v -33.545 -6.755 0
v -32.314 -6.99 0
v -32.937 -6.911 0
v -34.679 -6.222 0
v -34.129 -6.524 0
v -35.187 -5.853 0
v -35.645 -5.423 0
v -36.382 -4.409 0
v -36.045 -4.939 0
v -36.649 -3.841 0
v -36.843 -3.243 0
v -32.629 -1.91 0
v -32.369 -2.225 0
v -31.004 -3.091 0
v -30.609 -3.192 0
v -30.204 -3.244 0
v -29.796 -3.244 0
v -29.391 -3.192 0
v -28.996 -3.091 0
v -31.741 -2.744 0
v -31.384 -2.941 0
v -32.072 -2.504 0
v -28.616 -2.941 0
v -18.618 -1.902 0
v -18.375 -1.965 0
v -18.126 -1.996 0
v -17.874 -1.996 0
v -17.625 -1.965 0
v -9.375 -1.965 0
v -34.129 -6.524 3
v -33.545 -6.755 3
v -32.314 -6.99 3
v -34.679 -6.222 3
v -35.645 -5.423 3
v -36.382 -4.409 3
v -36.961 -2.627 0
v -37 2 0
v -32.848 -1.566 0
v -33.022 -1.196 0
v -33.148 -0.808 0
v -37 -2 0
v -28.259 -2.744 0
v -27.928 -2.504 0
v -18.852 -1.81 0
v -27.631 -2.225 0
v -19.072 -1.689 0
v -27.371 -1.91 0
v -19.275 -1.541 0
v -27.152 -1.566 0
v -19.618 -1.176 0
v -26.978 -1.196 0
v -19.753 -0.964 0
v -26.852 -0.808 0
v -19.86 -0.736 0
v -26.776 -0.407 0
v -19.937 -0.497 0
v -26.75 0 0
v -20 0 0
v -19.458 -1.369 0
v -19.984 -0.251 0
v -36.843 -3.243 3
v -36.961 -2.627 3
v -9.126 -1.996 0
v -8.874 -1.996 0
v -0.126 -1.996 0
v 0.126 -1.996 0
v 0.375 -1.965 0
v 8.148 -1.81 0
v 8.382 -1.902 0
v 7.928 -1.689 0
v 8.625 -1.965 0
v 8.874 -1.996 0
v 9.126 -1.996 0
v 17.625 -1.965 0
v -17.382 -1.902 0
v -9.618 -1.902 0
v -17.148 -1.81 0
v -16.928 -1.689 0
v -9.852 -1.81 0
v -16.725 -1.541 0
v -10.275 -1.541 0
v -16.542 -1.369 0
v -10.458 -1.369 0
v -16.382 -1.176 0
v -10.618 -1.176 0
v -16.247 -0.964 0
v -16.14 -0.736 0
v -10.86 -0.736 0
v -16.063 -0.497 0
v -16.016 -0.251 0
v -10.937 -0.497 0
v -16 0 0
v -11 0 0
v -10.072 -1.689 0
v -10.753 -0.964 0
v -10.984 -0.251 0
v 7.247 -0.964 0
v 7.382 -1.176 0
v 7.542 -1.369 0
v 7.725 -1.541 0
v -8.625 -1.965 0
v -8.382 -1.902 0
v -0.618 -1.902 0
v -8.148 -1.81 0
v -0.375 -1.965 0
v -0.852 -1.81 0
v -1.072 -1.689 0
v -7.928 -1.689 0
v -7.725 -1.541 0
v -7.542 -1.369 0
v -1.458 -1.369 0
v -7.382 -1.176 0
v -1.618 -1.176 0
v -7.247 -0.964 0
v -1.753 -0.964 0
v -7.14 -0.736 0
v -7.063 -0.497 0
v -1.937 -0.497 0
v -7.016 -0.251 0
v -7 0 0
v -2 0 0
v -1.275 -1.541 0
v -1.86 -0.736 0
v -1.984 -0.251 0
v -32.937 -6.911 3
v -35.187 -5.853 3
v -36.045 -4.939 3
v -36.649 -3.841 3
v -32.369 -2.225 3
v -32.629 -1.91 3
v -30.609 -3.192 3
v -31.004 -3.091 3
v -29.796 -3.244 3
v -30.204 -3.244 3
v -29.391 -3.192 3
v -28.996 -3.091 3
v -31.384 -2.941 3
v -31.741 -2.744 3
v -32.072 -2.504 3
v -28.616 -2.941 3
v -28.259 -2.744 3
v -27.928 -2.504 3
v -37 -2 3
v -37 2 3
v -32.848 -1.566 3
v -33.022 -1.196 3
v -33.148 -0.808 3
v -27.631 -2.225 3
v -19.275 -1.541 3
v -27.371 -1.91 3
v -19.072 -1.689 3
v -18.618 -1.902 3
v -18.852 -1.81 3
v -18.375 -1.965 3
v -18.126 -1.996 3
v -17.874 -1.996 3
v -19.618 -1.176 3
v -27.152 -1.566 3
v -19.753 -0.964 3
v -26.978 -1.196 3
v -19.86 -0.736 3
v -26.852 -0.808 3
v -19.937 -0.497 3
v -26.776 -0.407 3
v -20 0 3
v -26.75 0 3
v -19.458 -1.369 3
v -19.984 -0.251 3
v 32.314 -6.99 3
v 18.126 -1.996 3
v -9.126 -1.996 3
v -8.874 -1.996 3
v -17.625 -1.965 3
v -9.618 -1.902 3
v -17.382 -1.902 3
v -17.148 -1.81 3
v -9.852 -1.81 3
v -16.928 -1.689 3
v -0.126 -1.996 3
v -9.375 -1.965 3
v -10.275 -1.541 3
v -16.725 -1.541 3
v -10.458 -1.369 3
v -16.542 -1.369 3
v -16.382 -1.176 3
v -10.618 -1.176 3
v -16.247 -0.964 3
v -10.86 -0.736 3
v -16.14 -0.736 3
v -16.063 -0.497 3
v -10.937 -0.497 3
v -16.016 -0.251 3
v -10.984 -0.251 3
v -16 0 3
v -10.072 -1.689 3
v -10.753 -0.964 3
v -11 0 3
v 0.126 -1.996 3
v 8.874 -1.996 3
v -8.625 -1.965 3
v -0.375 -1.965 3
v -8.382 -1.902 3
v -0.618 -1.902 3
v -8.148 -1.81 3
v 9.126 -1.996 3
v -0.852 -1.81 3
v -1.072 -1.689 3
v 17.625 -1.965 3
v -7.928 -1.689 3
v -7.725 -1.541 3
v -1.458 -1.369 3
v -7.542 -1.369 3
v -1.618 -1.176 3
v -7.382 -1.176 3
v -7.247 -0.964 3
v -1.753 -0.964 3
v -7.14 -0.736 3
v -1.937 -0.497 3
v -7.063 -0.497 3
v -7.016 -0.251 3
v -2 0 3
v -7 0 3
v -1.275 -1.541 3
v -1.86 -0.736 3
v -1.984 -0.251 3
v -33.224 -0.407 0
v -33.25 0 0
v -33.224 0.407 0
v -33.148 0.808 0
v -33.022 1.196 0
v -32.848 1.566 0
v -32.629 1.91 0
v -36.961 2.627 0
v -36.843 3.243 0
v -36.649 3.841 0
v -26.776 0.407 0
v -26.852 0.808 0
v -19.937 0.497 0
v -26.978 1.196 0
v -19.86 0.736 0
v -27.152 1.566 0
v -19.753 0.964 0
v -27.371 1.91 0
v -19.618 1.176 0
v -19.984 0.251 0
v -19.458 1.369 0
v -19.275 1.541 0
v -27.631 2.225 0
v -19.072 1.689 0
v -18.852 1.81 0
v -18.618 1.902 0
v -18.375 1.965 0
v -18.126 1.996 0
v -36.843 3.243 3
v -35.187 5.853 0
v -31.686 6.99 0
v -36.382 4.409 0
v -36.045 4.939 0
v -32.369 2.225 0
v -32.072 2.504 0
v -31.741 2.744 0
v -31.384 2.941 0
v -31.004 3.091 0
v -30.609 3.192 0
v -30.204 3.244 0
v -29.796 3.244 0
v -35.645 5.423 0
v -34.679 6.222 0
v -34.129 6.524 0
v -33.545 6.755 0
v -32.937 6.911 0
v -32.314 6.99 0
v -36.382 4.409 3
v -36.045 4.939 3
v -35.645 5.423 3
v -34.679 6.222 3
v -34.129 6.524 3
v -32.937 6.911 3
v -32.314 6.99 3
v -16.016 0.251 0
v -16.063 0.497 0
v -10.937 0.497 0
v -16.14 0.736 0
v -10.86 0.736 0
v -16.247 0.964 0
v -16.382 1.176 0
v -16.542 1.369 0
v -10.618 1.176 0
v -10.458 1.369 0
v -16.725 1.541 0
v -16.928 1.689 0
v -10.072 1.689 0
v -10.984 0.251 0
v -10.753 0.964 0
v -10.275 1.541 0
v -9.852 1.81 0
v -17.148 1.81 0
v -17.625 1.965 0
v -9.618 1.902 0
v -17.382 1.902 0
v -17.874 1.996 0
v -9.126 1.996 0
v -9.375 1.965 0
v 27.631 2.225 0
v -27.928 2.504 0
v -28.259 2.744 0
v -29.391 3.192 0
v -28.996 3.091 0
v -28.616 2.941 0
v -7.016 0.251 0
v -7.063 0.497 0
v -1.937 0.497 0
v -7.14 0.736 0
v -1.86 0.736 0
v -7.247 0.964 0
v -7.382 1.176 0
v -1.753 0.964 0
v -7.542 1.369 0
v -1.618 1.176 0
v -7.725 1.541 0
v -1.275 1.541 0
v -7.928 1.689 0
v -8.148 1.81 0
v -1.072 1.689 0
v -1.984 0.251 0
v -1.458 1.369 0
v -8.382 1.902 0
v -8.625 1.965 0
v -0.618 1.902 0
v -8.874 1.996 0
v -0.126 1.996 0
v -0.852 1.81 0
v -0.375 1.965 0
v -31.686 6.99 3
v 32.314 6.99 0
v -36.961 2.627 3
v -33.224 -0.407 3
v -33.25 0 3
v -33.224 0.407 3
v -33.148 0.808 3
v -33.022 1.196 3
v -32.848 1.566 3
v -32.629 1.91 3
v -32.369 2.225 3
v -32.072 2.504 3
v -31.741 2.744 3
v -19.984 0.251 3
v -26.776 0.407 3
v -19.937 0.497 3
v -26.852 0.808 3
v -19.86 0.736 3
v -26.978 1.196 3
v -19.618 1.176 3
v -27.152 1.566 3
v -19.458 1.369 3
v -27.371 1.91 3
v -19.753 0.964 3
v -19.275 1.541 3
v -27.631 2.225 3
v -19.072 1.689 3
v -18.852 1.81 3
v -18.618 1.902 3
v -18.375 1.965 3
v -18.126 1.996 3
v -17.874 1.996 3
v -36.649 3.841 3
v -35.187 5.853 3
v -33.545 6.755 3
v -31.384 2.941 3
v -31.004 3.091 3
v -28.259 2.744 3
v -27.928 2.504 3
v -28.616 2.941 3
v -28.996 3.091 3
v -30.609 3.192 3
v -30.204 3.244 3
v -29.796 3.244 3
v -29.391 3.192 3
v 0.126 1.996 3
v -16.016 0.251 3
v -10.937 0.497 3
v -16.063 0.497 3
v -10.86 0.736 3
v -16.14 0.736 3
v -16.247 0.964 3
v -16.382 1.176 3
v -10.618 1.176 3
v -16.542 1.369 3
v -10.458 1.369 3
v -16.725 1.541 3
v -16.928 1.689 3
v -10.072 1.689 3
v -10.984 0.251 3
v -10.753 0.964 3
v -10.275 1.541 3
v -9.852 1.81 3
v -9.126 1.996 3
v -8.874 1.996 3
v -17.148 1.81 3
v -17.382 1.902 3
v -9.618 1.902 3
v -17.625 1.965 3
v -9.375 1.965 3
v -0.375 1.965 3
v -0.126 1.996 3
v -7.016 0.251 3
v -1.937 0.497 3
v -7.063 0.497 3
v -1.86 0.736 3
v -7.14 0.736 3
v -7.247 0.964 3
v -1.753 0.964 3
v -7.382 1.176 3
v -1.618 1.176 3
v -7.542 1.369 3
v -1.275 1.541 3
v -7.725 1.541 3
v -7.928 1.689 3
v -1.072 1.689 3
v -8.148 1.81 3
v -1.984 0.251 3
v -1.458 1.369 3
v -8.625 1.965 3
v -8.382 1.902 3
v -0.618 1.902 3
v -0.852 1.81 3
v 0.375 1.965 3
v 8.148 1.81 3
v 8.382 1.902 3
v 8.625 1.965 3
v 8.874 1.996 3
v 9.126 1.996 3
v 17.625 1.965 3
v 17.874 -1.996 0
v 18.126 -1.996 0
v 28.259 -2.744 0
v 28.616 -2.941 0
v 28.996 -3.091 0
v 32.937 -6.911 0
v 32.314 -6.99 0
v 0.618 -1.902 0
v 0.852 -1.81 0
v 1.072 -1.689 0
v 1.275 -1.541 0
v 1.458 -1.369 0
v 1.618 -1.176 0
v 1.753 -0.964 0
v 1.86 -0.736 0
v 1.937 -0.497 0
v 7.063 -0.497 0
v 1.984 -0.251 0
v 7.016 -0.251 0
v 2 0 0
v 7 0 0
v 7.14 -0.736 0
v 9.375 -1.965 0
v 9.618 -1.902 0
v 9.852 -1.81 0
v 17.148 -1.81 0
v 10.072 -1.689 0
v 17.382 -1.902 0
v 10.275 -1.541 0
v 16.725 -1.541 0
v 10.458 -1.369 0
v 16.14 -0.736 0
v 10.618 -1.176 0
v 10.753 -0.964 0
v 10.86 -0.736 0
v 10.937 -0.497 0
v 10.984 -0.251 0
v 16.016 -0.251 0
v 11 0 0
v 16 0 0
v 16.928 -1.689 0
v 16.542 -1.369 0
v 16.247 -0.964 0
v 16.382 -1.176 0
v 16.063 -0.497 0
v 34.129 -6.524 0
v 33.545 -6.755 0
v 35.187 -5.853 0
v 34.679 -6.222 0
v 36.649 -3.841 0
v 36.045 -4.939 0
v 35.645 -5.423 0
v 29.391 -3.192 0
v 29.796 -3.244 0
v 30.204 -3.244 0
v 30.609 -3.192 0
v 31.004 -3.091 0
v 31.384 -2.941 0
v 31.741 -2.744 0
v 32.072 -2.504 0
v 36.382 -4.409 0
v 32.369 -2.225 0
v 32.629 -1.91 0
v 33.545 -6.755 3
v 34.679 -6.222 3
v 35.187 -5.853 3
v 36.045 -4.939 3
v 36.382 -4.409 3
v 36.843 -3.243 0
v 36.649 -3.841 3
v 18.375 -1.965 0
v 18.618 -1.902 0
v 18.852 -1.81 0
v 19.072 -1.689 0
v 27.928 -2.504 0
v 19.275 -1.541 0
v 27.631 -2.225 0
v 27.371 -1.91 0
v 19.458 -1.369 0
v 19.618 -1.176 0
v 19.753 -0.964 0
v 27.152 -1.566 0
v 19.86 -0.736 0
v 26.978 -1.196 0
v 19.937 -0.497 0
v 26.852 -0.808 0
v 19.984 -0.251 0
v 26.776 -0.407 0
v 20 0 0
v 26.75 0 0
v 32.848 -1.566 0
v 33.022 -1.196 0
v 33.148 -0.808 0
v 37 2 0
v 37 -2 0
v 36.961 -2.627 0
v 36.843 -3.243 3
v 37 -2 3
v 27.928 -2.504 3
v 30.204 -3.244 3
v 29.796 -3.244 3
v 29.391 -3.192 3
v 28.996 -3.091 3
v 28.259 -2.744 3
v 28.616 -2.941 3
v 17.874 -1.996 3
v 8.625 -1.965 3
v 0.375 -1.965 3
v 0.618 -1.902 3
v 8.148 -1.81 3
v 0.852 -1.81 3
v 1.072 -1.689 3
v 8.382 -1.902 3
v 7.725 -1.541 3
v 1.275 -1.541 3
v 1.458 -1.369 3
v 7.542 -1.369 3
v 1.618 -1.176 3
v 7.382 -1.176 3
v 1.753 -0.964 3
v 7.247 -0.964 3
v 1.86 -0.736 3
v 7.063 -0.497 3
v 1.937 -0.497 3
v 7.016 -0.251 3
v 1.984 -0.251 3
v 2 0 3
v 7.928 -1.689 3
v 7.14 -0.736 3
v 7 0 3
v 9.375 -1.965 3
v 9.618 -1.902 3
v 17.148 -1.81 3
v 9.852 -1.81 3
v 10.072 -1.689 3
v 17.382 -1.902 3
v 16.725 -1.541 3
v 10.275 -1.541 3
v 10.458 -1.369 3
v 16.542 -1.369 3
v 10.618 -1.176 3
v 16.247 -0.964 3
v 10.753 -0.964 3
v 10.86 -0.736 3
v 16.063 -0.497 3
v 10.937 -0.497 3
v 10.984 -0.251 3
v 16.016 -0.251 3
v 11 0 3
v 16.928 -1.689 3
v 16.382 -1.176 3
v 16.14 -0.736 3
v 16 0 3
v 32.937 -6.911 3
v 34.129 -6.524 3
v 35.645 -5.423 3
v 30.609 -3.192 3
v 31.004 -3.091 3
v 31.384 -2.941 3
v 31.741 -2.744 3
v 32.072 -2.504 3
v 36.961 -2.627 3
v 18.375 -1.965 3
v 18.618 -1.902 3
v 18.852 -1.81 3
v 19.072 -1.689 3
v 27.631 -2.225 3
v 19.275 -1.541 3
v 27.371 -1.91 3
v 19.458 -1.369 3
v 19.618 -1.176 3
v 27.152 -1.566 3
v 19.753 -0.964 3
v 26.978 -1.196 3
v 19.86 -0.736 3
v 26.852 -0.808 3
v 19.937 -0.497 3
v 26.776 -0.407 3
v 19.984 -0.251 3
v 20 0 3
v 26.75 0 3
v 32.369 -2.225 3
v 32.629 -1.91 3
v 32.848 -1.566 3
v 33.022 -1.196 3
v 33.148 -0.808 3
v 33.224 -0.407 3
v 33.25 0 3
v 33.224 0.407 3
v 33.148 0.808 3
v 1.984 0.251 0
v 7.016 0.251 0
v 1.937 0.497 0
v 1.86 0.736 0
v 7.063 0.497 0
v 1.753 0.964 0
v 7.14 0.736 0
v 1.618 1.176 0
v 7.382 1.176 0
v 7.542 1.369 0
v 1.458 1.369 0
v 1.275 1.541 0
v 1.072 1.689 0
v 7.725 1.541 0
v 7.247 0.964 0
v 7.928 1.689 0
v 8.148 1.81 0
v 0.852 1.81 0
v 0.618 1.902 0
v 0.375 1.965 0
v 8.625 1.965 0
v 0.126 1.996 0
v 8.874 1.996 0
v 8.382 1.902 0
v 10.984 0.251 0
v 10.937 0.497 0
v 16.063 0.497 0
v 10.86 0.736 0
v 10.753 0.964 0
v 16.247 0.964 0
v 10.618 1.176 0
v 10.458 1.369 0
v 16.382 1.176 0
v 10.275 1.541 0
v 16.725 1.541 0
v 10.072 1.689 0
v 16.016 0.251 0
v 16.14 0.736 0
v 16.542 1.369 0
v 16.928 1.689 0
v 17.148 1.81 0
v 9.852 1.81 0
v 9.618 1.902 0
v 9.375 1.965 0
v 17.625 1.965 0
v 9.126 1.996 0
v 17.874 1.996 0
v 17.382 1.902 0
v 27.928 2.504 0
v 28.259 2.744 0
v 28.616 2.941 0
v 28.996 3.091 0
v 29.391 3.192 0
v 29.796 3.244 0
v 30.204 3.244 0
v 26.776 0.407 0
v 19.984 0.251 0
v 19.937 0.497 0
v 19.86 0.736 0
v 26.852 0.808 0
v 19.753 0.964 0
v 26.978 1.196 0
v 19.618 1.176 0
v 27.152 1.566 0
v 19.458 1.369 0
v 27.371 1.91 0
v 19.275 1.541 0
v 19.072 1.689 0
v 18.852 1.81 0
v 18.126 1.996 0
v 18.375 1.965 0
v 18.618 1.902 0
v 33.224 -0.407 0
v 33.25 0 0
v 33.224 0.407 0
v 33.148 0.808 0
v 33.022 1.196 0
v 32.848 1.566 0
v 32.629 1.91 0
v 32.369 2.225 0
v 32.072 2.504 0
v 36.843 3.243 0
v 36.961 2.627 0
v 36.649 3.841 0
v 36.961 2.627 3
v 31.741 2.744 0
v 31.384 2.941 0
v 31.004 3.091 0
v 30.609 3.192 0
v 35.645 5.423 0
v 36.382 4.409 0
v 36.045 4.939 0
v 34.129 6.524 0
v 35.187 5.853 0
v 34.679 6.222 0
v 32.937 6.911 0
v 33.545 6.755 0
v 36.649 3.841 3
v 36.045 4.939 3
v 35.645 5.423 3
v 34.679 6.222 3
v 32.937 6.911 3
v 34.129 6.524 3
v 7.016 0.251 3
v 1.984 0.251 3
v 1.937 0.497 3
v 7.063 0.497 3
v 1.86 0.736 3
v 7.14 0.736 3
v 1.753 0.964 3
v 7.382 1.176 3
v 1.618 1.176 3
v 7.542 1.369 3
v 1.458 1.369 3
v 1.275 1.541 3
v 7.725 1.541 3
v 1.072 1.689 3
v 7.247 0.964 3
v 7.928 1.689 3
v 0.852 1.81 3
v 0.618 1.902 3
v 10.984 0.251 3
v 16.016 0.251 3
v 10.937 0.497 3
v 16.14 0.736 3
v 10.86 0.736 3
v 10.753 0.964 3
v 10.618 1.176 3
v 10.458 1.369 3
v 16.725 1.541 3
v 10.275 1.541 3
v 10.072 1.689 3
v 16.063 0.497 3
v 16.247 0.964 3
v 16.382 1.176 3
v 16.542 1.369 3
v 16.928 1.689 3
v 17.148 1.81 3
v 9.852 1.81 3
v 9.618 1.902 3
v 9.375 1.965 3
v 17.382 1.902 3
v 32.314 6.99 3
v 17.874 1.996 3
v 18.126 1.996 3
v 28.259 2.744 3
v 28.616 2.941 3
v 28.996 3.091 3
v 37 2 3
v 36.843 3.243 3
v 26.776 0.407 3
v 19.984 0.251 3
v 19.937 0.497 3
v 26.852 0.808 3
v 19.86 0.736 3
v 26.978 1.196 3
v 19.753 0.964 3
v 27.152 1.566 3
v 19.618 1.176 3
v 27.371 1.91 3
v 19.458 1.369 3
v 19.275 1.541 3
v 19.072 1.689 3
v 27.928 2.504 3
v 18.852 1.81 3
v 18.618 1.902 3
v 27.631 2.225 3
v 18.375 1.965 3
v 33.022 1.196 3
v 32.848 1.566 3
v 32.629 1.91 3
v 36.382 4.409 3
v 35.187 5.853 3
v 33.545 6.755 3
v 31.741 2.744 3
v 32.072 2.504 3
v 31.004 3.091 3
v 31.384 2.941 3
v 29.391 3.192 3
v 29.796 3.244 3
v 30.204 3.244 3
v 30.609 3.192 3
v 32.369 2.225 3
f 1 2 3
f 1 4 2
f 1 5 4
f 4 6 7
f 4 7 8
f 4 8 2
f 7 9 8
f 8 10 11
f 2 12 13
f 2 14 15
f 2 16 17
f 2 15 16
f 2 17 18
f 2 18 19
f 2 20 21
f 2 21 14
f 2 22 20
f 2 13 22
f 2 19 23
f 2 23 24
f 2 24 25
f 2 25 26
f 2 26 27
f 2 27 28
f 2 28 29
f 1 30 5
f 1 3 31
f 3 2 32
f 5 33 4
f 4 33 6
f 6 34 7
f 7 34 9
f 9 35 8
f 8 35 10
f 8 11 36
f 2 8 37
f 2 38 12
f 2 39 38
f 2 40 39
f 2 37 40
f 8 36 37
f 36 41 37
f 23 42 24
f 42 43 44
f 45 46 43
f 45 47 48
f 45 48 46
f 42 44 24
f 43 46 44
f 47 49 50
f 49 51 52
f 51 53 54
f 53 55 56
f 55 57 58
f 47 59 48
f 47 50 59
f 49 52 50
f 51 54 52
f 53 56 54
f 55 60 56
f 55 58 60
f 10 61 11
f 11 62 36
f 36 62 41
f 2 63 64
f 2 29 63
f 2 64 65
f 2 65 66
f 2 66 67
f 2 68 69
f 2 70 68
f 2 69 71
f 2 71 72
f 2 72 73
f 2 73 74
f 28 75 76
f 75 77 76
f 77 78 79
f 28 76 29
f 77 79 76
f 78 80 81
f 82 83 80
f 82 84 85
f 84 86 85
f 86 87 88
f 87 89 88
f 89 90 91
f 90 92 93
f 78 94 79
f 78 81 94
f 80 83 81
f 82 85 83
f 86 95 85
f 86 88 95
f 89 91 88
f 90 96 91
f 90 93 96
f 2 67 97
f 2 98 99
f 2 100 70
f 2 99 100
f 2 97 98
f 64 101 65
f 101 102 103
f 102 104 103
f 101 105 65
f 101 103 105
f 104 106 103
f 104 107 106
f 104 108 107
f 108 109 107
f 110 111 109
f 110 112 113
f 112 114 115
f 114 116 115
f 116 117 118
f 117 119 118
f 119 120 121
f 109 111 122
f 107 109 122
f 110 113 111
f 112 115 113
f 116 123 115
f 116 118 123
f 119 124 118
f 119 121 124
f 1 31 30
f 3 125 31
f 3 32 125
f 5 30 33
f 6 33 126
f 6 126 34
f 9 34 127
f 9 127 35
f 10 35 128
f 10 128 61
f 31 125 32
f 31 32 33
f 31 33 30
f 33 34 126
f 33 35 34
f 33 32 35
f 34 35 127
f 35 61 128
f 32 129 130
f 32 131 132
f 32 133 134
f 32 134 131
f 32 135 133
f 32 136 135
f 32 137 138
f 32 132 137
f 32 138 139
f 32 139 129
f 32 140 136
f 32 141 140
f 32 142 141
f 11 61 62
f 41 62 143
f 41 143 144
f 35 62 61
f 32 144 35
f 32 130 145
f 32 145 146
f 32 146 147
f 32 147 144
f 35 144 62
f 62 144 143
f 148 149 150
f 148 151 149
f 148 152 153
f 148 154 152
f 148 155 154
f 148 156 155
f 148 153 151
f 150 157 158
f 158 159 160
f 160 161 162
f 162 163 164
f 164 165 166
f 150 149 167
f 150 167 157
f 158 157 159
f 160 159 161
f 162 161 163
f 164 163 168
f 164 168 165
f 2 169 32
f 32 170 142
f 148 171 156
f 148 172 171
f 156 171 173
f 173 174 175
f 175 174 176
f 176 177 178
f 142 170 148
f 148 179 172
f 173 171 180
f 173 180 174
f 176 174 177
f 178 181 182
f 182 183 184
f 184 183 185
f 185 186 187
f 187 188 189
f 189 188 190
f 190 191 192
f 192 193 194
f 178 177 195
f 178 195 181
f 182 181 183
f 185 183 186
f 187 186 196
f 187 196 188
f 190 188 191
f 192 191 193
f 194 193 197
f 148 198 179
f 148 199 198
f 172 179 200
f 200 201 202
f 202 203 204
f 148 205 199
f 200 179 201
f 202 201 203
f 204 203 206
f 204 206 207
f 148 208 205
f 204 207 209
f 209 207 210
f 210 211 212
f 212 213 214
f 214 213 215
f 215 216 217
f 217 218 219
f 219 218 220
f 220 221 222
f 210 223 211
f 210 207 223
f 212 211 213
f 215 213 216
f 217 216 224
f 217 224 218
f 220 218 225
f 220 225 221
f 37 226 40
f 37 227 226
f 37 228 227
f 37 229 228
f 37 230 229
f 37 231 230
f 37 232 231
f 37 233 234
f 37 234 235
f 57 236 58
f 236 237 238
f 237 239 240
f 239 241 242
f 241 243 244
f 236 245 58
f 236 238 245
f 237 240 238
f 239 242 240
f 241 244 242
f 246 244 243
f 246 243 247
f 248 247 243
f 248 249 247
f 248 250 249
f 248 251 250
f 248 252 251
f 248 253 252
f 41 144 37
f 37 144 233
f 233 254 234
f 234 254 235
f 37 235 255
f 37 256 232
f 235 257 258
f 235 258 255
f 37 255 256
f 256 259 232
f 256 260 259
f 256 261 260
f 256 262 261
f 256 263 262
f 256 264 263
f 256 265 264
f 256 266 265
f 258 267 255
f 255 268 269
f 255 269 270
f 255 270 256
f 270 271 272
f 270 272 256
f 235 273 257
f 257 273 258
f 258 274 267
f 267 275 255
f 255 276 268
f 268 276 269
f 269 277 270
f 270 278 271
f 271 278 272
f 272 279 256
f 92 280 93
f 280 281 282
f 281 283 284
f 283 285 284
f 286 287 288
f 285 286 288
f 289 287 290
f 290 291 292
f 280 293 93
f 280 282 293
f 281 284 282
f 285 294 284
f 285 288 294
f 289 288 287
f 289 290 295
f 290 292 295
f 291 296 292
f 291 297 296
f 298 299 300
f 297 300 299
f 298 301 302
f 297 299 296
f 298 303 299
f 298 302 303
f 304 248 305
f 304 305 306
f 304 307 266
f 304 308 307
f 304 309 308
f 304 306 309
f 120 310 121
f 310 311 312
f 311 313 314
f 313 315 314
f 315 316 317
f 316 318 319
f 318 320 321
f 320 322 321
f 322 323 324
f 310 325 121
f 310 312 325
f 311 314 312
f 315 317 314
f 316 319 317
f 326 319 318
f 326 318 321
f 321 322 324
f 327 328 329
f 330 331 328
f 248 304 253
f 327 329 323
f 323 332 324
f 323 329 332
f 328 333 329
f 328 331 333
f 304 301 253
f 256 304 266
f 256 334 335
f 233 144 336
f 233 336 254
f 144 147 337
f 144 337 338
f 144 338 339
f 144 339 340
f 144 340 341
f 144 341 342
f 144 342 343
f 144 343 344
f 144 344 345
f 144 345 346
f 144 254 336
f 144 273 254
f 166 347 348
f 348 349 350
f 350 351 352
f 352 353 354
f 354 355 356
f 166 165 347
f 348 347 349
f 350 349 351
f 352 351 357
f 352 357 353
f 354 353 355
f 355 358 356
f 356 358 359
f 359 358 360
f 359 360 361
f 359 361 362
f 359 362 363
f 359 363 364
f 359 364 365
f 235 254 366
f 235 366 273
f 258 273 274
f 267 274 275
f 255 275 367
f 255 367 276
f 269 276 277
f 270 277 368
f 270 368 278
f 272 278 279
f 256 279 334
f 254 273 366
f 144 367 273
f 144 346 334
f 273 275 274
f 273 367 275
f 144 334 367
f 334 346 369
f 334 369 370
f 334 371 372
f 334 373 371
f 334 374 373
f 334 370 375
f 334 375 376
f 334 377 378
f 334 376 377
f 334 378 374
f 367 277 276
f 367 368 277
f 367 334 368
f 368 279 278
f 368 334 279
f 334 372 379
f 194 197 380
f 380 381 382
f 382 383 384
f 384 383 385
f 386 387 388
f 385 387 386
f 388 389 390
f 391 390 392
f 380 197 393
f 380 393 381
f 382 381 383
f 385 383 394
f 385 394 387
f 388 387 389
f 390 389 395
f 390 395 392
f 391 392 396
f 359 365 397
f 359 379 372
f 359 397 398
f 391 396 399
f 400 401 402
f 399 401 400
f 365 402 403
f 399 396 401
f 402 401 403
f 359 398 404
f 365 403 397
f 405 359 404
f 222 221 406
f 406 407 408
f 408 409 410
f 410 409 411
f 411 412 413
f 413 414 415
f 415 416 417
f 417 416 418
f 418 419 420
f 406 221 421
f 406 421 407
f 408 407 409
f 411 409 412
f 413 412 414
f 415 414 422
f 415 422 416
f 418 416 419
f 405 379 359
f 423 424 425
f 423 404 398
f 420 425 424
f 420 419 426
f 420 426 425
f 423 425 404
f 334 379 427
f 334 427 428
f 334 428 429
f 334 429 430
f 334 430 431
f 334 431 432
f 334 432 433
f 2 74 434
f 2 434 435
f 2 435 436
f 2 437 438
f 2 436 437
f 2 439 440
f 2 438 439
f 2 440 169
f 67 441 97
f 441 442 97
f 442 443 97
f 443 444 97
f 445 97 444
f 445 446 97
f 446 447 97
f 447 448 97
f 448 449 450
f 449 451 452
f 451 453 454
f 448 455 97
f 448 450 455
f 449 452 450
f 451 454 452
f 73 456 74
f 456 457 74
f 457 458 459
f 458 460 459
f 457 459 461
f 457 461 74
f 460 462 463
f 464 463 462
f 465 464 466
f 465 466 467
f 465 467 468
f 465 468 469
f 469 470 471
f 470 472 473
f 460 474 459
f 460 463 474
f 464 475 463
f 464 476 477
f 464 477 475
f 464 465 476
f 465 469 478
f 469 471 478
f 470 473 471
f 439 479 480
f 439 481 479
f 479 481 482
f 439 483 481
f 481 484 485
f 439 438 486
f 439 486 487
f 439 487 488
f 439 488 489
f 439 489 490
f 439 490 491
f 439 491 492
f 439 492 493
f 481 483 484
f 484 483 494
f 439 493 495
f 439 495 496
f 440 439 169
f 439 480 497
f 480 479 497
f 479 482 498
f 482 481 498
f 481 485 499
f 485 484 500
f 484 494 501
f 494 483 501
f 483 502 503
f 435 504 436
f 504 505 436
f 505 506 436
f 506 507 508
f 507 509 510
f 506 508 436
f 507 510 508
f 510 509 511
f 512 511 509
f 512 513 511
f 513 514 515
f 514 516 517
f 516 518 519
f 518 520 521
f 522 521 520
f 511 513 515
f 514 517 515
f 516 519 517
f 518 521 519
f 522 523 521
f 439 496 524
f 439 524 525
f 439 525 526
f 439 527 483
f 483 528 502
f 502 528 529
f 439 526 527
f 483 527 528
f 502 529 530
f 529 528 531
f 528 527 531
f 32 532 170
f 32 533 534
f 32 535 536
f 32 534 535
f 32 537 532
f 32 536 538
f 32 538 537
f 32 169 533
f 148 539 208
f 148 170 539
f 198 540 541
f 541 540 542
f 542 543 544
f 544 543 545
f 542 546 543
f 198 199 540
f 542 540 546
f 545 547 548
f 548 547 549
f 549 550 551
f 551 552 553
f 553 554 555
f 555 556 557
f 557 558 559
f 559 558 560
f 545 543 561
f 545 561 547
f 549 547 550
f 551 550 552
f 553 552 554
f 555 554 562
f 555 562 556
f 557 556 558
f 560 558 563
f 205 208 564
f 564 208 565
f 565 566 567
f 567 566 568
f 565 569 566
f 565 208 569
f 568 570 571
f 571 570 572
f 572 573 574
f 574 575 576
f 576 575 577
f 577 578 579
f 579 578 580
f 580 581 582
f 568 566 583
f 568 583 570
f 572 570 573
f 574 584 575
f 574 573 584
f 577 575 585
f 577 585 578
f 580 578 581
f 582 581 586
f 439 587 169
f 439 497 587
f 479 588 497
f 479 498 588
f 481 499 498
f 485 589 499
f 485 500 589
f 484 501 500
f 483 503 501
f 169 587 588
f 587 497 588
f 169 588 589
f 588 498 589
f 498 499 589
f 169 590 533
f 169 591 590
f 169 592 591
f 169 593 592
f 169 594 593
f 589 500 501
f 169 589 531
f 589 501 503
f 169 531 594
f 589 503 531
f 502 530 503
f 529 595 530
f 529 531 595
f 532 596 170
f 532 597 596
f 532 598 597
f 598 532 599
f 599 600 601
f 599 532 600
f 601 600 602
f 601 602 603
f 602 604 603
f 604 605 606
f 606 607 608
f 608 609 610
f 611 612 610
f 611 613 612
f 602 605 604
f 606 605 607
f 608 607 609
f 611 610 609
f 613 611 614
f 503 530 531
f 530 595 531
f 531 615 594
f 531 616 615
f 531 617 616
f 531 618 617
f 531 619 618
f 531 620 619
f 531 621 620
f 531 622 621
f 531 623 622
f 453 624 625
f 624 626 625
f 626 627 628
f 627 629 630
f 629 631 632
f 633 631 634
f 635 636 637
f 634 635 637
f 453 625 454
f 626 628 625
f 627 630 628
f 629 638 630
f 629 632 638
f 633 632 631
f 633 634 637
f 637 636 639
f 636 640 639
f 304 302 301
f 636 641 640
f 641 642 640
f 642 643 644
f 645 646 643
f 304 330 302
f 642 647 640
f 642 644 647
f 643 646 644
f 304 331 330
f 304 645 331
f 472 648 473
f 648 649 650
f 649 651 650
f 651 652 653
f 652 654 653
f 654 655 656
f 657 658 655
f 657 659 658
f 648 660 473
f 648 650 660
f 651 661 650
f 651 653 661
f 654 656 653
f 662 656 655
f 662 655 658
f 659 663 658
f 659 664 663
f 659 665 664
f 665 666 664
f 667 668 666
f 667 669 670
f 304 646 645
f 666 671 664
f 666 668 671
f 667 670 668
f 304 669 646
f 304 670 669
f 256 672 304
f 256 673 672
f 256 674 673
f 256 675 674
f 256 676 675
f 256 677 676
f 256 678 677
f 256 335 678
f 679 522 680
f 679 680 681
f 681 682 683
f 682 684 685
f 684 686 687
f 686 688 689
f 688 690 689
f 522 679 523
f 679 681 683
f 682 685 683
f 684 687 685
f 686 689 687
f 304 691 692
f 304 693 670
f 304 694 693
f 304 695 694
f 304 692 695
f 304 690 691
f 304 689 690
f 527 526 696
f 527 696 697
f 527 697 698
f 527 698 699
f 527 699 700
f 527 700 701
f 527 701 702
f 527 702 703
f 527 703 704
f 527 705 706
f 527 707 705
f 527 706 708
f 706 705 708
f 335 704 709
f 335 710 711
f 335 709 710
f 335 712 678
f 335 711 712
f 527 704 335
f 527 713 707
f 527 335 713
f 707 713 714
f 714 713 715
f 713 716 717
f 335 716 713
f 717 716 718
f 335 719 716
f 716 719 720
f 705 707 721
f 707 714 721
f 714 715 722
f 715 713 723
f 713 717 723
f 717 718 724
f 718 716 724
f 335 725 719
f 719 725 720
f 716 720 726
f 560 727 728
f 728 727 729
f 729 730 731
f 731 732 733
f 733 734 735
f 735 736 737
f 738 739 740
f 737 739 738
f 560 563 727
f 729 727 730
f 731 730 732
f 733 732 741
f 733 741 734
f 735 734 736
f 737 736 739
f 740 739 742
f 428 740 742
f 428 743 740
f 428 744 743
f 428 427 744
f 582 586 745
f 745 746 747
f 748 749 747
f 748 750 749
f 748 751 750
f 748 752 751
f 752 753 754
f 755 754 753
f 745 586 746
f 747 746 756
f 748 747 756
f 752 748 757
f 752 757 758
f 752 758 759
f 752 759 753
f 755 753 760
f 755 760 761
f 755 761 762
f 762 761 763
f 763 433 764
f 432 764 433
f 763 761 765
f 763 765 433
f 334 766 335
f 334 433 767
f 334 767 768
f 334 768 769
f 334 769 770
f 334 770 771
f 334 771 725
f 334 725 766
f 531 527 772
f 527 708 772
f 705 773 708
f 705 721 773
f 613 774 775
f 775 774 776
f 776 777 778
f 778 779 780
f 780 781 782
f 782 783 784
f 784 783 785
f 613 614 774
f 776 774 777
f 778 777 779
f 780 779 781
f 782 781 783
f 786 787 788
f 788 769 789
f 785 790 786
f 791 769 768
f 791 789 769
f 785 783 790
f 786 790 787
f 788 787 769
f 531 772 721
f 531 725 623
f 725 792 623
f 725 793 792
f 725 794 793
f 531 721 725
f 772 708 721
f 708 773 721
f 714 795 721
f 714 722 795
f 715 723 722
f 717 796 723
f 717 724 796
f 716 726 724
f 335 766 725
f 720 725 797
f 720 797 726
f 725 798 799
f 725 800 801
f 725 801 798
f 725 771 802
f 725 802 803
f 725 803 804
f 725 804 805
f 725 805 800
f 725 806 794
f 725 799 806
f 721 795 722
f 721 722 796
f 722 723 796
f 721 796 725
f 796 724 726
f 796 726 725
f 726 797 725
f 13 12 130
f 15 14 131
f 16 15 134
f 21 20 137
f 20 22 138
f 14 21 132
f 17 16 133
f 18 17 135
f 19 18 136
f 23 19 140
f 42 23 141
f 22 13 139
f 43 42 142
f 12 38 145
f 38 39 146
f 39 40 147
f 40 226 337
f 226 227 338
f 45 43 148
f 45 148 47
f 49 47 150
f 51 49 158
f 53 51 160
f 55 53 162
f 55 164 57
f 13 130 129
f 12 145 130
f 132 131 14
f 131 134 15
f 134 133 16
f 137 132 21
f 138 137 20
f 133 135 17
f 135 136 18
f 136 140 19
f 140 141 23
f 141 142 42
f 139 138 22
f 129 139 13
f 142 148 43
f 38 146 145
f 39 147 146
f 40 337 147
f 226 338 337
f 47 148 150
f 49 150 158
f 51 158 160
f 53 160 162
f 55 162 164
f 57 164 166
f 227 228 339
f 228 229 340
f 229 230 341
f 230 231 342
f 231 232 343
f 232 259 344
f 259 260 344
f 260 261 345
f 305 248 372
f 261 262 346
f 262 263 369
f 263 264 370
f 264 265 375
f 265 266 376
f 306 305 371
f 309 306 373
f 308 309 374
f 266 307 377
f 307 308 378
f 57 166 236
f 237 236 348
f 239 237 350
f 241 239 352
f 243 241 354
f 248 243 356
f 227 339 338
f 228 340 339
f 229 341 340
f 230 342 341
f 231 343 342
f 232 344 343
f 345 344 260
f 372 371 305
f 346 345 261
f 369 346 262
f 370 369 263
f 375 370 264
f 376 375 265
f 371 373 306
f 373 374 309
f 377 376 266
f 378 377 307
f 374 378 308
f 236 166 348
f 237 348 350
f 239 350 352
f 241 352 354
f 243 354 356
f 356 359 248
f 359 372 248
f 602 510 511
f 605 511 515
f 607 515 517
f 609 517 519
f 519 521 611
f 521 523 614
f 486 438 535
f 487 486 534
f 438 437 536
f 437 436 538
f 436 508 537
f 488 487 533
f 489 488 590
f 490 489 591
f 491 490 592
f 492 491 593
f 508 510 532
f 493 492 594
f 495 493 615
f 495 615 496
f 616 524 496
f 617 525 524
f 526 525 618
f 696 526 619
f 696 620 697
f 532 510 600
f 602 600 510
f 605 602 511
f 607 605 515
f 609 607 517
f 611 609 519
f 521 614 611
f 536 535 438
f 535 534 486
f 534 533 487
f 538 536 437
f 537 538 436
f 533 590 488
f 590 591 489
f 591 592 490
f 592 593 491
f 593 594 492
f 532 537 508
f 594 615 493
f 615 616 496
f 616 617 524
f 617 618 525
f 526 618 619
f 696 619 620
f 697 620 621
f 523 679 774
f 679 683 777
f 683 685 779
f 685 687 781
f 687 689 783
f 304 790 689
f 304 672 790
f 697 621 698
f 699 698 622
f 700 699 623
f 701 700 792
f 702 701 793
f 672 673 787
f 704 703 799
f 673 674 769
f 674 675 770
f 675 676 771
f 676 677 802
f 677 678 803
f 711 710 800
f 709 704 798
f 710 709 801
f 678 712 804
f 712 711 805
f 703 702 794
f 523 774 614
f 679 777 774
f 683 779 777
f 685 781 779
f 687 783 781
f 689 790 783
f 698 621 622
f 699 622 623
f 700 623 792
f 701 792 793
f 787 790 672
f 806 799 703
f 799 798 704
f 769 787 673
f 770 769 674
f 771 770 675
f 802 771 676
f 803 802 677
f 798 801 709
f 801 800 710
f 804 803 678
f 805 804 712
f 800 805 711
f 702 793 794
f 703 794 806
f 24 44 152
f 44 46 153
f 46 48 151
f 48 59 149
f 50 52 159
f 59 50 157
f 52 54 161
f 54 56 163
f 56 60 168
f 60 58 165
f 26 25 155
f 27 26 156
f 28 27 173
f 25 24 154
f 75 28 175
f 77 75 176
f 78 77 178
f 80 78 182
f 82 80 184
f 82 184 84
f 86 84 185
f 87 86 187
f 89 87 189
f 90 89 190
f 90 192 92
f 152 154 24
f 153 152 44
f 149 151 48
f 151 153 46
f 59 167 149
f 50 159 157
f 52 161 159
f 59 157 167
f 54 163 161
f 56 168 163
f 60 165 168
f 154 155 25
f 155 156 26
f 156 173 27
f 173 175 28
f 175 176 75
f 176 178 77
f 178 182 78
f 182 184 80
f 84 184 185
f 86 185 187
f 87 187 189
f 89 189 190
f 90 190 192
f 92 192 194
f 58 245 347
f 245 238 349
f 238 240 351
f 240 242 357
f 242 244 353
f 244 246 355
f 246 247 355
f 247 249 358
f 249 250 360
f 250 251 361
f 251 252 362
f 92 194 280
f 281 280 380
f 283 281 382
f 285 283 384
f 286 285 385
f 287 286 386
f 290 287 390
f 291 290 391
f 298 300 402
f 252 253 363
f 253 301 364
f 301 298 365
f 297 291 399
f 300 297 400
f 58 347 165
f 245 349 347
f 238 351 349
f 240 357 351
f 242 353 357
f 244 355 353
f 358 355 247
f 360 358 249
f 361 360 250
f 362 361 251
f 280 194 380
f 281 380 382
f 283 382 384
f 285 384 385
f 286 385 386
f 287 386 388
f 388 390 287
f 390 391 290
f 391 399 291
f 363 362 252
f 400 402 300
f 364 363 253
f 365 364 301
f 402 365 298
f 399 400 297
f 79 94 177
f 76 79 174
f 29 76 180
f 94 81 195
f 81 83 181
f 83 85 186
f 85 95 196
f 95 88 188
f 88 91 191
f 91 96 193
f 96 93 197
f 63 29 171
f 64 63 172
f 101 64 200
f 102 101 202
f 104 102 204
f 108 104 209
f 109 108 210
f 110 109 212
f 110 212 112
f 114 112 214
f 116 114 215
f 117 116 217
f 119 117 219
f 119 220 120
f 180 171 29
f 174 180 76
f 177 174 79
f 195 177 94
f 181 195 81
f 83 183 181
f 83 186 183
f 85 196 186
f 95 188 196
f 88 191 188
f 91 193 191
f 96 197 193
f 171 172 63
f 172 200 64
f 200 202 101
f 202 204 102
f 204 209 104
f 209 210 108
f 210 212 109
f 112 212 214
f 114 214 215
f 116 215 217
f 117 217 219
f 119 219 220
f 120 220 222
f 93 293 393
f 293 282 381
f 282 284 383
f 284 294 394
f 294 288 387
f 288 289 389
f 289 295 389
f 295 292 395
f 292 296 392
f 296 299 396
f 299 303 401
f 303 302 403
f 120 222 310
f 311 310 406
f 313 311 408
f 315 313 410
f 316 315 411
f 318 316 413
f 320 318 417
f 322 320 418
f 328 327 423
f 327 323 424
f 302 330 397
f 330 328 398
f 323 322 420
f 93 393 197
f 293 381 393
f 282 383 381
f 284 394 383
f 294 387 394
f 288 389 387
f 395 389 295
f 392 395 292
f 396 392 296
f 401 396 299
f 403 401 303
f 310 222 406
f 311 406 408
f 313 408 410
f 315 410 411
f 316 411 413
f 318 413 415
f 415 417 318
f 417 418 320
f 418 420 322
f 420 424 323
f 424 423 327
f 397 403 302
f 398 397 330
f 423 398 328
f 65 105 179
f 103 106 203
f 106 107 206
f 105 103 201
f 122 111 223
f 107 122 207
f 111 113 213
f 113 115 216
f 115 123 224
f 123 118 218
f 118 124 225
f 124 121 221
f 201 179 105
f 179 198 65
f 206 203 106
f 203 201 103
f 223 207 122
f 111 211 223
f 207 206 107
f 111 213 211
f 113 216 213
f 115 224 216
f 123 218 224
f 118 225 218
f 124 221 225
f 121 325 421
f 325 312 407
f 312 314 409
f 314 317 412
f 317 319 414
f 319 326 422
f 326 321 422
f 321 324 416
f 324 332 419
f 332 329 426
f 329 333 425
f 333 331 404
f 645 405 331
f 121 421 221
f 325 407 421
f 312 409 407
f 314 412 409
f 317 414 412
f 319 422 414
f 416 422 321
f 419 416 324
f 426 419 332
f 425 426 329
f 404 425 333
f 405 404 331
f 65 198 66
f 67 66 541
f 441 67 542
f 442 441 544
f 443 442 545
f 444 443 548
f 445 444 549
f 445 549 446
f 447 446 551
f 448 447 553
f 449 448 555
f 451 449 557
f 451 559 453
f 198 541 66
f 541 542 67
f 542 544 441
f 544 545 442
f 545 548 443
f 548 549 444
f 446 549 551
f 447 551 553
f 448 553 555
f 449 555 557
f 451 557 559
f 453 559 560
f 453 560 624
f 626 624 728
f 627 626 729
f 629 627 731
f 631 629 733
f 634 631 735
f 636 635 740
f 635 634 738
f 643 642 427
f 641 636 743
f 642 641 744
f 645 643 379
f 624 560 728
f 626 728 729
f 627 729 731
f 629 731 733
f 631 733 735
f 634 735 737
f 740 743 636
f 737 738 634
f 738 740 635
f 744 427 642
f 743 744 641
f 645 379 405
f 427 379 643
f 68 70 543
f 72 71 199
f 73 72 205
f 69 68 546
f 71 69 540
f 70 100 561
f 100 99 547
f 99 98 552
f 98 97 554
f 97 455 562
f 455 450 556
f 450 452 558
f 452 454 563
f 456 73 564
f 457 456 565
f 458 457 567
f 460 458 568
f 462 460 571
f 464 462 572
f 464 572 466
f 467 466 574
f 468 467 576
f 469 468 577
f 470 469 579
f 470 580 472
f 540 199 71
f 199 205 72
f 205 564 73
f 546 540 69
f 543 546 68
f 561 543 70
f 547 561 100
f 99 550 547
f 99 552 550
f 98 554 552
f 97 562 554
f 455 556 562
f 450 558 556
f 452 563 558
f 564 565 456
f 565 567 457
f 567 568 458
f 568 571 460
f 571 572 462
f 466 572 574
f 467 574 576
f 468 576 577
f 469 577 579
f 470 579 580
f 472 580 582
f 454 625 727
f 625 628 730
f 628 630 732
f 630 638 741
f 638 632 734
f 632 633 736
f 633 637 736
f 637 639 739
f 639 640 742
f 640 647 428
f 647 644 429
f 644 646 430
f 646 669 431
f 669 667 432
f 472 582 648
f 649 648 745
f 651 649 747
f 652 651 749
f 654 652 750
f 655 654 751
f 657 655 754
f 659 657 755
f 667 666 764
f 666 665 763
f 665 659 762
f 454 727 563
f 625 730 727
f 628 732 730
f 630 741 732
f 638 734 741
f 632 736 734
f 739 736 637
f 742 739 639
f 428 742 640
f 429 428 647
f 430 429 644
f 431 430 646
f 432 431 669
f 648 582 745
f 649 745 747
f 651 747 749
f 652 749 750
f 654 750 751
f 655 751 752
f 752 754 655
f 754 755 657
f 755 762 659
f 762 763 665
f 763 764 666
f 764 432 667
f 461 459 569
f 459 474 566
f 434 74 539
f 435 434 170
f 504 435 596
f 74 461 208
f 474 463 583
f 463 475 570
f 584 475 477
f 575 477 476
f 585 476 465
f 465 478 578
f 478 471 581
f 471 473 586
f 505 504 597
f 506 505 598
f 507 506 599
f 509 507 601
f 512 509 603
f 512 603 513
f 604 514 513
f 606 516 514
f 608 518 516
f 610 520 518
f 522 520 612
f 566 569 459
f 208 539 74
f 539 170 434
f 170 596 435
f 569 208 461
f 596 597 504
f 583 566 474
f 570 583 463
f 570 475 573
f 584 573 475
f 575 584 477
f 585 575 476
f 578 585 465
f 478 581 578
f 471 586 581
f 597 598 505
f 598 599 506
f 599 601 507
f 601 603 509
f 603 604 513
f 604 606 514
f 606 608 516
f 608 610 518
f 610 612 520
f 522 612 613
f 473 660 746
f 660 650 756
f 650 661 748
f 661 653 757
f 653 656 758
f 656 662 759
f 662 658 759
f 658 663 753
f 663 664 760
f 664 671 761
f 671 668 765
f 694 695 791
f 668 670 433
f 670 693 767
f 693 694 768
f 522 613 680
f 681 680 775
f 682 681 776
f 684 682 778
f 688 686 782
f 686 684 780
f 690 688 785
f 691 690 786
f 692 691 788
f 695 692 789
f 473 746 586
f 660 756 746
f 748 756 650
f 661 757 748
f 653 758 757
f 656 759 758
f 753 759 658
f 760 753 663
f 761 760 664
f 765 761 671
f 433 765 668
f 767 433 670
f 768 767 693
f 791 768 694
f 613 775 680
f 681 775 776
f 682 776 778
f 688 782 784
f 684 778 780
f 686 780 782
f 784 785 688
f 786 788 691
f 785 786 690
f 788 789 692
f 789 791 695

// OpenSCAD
$fn = 50;

difference() {
	union() {
		hull() {
			translate(v = [-32.0, 2.0, 0]) {
				cylinder(h = 3, r = 5);
			}
			translate(v = [32.0, 2.0, 0]) {
				cylinder(h = 3, r = 5);
			}
			translate(v = [-32.0, -2.0, 0]) {
				cylinder(h = 3, r = 5);
			}
			translate(v = [32.0, -2.0, 0]) {
				cylinder(h = 3, r = 5);
			}
		}
	}
	union() {
		translate(v = [-30.0, 0.0, 0]) {
			cylinder(h = 3, r = 3.25);
		}
		translate(v = [30.0, 0.0, 0]) {
			cylinder(h = 3, r = 3.25);
		}
		translate(v = [-18.0, 0, 0.0]) {
			cylinder(h = 3, r = 2.0);
		}
		translate(v = [-9.0, 0, 0.0]) {
			cylinder(h = 3, r = 2.0);
		}
		cylinder(h = 3, r = 2.0);
		translate(v = [9.0, 0, 0.0]) {
			cylinder(h = 3, r = 2.0);
		}
		translate(v = [18.0, 0, 0.0]) {
			cylinder(h = 3, r = 2.0);
		}
	}
}
